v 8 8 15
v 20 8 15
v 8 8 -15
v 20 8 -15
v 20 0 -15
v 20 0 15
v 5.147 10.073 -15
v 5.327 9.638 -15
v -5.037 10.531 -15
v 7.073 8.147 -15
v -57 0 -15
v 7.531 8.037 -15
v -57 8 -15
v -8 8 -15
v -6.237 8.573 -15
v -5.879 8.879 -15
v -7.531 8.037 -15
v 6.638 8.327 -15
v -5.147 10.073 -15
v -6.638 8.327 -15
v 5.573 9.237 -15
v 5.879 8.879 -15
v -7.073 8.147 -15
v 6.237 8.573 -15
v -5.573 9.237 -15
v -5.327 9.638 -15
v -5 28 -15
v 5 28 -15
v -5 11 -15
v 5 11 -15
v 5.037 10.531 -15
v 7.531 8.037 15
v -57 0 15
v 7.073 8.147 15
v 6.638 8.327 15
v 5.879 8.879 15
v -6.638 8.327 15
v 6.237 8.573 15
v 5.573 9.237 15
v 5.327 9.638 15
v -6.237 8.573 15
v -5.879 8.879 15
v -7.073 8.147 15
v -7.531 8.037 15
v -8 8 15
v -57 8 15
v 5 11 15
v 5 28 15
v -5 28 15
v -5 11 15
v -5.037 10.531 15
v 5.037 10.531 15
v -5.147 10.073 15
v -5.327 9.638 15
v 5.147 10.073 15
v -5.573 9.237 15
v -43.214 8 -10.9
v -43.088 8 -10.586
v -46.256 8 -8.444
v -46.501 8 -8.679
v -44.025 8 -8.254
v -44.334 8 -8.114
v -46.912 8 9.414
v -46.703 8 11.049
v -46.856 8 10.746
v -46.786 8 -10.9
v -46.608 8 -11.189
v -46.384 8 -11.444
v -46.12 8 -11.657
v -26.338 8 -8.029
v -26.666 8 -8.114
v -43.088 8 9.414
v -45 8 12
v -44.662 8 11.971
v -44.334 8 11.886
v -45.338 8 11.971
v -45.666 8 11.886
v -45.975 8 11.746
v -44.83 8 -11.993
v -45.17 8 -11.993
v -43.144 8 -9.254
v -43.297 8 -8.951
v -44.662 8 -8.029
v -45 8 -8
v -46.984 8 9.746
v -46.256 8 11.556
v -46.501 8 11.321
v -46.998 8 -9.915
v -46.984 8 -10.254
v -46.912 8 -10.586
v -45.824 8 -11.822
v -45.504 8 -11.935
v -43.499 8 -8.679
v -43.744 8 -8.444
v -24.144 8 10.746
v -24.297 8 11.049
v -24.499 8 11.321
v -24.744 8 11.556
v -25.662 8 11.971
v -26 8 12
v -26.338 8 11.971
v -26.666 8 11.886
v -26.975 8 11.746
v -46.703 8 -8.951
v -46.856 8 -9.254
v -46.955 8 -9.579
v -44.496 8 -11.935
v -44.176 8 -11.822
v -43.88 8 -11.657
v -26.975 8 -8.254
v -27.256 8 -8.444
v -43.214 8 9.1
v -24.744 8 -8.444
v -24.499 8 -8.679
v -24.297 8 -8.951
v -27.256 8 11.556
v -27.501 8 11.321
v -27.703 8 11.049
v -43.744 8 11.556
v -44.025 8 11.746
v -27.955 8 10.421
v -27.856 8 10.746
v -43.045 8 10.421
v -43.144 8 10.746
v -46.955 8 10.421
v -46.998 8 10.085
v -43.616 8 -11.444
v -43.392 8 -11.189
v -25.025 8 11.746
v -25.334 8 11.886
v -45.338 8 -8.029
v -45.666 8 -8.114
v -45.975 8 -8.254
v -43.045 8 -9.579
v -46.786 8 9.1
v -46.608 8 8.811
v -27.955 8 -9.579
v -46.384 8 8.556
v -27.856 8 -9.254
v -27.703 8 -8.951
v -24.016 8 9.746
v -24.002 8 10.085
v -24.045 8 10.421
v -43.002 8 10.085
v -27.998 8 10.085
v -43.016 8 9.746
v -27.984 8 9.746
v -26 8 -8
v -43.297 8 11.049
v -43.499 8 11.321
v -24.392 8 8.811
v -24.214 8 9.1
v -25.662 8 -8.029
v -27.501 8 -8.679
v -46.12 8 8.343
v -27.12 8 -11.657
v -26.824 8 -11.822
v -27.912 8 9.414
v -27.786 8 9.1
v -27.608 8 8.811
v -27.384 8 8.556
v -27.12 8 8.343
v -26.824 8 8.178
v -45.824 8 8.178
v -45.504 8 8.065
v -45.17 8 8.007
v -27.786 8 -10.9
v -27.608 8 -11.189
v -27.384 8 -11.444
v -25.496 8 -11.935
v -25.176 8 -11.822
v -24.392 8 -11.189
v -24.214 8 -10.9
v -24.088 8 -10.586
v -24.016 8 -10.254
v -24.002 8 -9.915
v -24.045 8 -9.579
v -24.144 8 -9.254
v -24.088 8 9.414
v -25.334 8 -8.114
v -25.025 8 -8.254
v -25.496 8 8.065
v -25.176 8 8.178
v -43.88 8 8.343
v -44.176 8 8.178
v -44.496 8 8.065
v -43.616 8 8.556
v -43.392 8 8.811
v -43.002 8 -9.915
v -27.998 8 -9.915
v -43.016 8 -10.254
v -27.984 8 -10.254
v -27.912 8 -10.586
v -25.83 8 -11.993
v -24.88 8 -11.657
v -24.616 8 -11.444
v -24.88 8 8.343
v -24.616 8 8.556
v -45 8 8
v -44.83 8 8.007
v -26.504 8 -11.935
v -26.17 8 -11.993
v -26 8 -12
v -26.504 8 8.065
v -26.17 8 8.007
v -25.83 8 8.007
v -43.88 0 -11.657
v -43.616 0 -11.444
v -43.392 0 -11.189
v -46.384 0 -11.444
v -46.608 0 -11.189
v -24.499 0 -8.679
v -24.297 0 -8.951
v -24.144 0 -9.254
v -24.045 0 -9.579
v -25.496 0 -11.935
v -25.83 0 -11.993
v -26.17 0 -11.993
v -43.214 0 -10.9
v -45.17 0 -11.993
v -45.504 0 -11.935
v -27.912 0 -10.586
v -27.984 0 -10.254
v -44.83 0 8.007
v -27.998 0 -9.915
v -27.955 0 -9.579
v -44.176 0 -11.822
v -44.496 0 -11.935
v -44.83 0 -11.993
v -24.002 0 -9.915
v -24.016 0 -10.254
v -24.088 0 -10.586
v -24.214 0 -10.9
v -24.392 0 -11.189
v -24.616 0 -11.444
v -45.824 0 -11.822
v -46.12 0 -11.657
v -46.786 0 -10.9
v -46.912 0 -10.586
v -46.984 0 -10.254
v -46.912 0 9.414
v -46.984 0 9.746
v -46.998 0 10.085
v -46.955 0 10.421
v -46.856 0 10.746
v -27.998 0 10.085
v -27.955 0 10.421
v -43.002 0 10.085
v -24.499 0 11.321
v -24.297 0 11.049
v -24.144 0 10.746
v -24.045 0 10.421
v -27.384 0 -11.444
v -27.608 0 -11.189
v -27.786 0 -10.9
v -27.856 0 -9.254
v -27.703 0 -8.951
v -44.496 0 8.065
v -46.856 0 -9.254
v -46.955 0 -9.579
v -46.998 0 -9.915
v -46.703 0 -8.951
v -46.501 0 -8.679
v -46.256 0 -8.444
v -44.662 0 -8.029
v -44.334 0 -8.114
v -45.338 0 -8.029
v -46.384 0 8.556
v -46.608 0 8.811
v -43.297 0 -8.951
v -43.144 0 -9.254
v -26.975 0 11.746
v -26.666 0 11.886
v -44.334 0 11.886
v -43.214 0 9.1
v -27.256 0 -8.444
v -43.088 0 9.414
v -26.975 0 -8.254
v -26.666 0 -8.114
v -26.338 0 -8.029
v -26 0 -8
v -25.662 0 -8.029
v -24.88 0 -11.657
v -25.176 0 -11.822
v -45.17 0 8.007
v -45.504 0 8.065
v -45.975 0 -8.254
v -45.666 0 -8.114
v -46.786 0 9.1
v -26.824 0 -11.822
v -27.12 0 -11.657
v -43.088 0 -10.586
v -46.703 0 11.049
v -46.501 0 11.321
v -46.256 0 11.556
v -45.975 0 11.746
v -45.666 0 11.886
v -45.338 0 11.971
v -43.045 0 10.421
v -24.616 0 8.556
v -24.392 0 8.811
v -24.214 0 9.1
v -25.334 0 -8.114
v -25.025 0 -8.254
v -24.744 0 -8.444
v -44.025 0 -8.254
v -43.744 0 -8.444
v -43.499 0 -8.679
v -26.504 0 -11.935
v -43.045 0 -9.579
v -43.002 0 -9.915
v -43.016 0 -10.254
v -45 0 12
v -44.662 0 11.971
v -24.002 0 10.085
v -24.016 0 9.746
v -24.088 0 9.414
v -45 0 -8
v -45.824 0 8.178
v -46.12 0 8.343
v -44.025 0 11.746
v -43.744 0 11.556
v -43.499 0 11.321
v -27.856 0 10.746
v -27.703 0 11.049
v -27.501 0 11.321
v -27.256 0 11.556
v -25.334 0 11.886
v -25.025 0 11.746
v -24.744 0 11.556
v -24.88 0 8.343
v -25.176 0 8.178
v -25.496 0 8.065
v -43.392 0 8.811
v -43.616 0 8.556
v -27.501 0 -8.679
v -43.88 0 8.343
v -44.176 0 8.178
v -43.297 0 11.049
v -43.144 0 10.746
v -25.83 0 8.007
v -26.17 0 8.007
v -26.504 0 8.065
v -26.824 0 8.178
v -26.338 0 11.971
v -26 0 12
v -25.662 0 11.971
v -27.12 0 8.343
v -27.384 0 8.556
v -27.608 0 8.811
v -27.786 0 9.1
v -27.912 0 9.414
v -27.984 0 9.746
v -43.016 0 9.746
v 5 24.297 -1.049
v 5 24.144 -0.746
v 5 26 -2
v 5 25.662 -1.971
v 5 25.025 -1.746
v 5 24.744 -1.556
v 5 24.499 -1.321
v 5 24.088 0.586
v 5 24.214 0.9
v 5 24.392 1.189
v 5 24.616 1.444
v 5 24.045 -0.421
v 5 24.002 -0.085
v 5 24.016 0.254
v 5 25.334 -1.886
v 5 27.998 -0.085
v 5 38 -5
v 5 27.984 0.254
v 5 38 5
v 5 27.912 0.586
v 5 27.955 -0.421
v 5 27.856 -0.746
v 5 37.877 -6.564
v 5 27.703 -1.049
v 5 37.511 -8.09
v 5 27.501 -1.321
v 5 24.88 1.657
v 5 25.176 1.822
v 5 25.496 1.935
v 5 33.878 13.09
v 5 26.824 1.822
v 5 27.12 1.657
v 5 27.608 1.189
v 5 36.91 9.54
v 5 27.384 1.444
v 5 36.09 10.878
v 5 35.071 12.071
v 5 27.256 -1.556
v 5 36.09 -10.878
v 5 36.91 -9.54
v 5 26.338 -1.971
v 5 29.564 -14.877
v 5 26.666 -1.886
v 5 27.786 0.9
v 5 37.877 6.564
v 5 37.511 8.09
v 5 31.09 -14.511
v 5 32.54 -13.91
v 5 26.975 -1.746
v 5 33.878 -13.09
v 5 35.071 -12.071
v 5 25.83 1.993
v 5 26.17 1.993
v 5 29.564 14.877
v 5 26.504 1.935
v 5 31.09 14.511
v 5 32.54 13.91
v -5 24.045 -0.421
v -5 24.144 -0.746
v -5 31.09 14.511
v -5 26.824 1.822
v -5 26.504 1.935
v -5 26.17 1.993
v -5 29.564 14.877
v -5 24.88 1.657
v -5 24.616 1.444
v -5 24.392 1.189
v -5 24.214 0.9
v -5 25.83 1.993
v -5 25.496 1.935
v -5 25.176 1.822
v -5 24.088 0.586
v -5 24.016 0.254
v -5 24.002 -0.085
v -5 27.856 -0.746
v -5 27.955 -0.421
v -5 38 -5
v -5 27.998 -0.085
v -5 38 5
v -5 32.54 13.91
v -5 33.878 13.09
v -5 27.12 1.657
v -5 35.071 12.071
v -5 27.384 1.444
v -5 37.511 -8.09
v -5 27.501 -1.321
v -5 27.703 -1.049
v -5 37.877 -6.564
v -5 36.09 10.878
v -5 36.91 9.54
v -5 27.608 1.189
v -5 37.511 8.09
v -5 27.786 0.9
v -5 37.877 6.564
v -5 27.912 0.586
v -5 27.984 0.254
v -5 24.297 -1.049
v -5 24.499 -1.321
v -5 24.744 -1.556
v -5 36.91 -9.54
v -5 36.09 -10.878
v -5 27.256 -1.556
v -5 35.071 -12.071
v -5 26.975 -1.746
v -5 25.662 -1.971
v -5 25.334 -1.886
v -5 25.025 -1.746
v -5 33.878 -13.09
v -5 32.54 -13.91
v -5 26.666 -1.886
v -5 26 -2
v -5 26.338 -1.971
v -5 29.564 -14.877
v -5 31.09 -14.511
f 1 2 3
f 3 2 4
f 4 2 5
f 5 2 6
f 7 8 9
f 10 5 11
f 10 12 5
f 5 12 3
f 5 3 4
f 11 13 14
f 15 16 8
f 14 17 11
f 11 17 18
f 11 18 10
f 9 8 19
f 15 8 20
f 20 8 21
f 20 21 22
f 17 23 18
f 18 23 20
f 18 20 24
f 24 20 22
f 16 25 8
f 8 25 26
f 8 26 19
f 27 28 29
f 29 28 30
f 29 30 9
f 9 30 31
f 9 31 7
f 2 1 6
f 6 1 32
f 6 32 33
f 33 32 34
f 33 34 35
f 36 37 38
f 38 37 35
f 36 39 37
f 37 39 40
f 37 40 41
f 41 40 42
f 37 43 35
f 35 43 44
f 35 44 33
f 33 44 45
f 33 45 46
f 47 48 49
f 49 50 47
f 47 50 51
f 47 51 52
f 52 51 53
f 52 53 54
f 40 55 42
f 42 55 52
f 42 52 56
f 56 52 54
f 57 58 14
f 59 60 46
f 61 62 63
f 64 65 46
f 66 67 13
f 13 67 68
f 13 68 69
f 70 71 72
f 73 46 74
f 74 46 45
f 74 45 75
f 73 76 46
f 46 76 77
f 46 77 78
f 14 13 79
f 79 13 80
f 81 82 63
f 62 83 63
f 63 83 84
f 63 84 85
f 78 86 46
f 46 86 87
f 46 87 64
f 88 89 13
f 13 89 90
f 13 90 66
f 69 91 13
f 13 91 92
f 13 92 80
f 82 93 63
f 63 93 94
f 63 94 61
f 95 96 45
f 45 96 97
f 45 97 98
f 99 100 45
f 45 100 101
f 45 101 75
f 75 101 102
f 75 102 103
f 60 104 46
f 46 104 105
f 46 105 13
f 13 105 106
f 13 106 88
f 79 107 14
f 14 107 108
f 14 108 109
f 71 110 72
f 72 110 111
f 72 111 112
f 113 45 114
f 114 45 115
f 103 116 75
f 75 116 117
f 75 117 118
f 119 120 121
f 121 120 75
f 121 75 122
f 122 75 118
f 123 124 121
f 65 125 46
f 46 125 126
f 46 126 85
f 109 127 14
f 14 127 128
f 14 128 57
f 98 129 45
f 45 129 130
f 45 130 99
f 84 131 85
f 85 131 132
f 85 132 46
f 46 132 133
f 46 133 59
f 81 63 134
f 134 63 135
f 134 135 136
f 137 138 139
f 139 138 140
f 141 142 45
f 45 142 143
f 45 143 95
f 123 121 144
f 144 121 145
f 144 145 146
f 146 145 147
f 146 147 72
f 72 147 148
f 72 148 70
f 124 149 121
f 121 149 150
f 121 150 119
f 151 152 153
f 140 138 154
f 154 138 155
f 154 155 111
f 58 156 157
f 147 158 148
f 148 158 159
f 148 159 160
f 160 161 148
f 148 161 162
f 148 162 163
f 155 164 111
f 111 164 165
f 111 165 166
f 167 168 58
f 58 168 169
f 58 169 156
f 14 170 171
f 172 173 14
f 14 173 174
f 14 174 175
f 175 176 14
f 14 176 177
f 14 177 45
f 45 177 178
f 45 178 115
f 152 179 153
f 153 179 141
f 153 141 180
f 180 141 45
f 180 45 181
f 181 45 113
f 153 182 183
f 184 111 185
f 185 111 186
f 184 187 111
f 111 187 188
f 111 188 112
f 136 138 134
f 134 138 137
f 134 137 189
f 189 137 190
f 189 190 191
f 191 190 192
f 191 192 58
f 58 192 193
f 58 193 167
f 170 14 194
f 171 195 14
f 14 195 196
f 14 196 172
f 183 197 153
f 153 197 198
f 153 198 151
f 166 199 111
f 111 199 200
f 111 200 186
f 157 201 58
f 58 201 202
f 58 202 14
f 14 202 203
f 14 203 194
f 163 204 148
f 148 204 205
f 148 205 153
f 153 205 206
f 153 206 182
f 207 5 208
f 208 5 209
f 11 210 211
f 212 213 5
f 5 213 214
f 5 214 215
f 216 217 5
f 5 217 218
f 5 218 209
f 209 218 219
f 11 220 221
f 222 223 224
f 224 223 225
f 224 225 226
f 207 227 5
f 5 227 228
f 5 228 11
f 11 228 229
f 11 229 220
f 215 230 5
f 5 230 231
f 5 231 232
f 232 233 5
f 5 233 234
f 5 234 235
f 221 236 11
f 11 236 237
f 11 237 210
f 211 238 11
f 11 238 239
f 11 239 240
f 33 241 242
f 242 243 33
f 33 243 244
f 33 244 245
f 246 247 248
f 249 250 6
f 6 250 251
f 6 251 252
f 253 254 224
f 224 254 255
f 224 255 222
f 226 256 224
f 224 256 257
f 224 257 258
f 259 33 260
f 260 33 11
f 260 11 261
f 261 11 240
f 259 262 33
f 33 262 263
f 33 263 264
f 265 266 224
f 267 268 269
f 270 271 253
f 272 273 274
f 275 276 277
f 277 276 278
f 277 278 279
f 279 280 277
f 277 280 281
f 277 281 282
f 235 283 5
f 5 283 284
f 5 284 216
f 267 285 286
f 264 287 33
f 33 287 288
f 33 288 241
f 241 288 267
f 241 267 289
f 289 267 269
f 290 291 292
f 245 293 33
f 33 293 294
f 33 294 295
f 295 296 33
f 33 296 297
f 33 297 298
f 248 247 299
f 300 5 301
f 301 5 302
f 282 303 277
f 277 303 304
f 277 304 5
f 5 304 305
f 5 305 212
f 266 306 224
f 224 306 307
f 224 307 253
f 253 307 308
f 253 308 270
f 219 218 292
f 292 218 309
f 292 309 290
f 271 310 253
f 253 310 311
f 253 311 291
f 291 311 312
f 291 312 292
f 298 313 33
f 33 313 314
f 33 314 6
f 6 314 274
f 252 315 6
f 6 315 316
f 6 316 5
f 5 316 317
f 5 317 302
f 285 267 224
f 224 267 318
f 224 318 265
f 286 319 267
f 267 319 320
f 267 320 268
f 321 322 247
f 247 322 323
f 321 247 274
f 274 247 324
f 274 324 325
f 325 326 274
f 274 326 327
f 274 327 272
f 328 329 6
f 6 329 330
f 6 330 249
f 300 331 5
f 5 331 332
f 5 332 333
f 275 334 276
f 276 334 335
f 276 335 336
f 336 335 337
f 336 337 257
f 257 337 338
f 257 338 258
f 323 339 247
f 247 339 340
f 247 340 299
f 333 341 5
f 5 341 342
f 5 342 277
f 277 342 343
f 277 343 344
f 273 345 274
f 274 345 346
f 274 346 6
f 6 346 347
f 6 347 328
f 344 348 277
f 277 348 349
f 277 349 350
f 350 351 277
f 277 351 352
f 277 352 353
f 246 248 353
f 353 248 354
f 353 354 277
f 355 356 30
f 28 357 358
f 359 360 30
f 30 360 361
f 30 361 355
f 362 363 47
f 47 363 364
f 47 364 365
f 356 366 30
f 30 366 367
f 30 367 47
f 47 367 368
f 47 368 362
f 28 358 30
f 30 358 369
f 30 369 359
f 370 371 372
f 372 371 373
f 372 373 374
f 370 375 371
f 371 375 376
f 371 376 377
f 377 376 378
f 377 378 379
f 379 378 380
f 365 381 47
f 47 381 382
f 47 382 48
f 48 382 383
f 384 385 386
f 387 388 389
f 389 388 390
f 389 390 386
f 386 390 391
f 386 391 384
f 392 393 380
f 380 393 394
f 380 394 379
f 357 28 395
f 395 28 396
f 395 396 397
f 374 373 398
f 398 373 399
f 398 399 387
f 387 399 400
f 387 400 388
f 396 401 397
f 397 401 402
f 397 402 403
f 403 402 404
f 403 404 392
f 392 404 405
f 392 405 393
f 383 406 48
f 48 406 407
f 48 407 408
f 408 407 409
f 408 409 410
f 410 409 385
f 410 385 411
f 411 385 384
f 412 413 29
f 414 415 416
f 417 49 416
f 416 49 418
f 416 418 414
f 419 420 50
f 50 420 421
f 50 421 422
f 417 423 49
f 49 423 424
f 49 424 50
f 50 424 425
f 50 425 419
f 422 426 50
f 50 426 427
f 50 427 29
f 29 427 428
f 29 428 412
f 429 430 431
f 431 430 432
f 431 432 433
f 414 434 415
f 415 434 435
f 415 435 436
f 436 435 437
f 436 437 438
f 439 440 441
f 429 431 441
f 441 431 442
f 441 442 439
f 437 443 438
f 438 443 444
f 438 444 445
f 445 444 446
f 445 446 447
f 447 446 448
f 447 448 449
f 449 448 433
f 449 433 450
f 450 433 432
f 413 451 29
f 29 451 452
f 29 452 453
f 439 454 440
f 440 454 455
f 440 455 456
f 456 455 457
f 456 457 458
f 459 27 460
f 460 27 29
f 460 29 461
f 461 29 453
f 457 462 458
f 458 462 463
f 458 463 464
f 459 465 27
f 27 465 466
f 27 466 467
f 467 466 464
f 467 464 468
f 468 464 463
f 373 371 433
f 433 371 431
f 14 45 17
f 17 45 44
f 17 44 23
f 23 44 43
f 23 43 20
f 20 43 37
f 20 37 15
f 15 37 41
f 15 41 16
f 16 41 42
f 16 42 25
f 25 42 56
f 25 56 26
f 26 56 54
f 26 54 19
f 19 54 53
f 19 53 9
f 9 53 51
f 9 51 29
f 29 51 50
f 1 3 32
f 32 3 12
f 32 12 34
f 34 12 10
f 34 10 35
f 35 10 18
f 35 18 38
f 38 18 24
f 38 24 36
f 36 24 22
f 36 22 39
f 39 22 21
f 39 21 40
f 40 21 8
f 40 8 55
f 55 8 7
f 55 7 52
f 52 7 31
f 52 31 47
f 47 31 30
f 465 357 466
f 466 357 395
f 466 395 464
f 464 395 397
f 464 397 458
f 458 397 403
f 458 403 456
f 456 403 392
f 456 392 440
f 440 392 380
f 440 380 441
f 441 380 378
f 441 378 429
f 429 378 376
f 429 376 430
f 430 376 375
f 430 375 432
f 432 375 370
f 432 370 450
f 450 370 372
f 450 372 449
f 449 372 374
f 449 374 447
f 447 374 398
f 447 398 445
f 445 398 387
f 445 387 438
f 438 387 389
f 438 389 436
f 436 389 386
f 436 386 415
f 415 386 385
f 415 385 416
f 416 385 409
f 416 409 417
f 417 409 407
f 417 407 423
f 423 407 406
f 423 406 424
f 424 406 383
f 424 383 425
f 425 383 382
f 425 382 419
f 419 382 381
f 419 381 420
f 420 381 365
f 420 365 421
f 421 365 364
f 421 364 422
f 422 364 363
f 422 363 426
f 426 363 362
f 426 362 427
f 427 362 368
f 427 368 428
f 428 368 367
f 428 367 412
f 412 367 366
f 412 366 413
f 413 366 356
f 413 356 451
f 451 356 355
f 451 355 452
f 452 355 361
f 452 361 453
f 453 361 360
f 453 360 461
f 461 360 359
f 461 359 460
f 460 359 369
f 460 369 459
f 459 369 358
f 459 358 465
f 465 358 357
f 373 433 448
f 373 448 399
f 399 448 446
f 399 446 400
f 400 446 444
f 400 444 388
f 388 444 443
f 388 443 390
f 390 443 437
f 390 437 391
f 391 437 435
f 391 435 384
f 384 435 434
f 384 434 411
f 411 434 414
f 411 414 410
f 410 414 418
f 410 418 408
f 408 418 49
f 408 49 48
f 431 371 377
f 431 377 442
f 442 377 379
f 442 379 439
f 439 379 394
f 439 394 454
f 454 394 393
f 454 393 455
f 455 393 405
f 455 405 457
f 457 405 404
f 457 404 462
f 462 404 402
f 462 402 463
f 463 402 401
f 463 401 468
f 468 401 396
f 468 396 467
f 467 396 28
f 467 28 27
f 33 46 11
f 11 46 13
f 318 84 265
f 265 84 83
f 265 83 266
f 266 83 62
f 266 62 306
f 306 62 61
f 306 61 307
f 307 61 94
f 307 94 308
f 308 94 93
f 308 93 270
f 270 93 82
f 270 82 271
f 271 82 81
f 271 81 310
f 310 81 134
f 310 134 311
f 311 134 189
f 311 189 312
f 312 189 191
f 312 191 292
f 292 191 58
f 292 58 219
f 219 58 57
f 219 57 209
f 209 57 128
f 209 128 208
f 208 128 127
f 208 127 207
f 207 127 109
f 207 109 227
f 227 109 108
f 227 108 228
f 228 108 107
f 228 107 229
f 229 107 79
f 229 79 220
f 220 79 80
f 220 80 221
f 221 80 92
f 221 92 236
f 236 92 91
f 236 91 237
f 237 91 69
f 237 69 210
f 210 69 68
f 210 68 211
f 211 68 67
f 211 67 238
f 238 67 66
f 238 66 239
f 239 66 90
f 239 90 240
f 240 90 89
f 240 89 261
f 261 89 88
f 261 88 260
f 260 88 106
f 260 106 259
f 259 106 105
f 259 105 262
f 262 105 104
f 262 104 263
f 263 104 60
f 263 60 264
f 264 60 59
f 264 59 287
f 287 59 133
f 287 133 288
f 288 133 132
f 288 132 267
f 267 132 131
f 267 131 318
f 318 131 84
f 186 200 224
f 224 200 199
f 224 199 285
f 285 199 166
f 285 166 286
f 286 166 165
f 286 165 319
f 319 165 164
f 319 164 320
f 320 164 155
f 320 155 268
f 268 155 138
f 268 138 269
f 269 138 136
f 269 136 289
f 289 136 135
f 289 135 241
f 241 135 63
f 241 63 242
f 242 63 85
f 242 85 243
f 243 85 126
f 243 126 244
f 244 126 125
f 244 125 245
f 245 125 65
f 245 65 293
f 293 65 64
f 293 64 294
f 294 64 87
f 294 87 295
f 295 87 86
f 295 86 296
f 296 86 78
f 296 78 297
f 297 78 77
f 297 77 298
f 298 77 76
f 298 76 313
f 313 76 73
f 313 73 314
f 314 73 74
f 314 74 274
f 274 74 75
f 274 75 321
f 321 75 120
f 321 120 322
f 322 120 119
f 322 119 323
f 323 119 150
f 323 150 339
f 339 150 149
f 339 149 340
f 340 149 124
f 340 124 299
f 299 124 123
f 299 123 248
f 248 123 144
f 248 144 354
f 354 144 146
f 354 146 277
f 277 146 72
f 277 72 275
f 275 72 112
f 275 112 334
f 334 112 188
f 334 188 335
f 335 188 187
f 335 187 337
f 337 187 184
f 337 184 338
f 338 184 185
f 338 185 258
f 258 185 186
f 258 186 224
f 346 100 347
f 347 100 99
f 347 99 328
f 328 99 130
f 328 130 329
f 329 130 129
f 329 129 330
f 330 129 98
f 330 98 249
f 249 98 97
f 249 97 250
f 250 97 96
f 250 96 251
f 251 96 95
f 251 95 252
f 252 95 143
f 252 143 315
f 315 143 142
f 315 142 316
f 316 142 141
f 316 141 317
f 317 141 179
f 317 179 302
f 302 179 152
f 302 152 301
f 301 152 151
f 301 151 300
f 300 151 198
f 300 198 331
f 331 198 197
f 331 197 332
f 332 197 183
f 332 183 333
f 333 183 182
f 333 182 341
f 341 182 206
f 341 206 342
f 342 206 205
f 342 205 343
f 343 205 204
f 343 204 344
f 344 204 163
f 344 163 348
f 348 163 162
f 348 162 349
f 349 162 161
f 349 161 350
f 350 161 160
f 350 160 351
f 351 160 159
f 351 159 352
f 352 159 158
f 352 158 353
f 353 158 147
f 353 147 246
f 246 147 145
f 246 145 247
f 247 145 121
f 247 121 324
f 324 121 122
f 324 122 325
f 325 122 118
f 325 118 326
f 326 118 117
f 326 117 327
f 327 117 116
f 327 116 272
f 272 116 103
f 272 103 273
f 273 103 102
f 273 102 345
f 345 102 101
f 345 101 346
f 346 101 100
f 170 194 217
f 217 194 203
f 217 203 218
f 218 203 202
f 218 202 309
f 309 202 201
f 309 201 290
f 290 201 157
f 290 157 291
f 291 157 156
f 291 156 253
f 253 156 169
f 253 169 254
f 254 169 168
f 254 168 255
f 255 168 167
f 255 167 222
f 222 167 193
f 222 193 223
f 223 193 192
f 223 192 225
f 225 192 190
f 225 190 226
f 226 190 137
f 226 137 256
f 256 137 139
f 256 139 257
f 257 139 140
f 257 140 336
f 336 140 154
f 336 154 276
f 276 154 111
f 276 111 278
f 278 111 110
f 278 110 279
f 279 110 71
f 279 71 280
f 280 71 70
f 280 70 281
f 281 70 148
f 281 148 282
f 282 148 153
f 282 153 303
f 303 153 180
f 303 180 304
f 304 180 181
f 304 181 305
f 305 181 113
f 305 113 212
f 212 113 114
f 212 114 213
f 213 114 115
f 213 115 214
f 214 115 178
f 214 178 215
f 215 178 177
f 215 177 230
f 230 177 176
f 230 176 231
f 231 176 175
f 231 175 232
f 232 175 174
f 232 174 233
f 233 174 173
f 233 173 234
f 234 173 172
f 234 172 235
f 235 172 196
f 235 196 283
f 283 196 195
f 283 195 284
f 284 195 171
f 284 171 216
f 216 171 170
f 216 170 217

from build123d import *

# Parameters (mm, degrees)
SKETCH1_W           = 40
SKETCH1_H           = 30
BOSS_EXTRUDE1_DEPTH = 8
SKETCH2_W           = 10
SKETCH2_H           = 30
BOSS_EXTRUDE2_DEPTH = 30
FILLET2_R           = 3
SKETCH4_R           = 2
CUT_EXTRUDE2_DEPTH  = 10
FILLET3_R           = 10
SKETCH5_W           = 30
SKETCH5_H           = 8
BOSS_EXTRUDE3_DEPTH = 37
SKETCH8_R           = 2
CUT_EXTRUDE3_DEPTH  = 37


with BuildPart() as part:
    # Sketch1 → Boss-Extrude1 (new body)
    with BuildSketch(Plane(origin=(0, 0, 0), x_dir=(1, 0, 0), z_dir=(0, 1, 0))):
        Rectangle(SKETCH1_W, SKETCH1_H)
    extrude(amount=BOSS_EXTRUDE1_DEPTH)

    # Sketch2 → Boss-Extrude2 (add)
    with BuildSketch(Plane(origin=(0, 8, 0), x_dir=(1, 0, 0), z_dir=(0, 1, 0))):
        Rectangle(SKETCH2_W, SKETCH2_H)
    extrude(amount=BOSS_EXTRUDE2_DEPTH)

    # Fillet2
    fillet2_edges = [part.edges().sort_by_distance(p)[0] for p in [
        (5, 8, 0),
        (-5, 8, 0),
    ]]
    fillet(fillet2_edges, radius=FILLET2_R)

    # Sketch4 → Cut-Extrude2 (cut)
    with BuildSketch(Plane(origin=(5, 0, 0), x_dir=(0, 0, -1), z_dir=(1, 0, 0))):
        with Locations((0, 26)):
            Circle(SKETCH4_R)
    extrude(amount=-CUT_EXTRUDE2_DEPTH, mode=Mode.SUBTRACT)

    # Fillet3
    fillet3_edges = [part.edges().sort_by_distance(p)[0] for p in [
        (0, 38, -15),
        (0, 38, 15),
    ]]
    fillet(fillet3_edges, radius=FILLET3_R)

    # Sketch5 → Boss-Extrude3 (add)
    with BuildSketch(Plane.ZY.offset(20)):
        with Locations((0, 4)):
            Rectangle(SKETCH5_W, SKETCH5_H)
    extrude(amount=BOSS_EXTRUDE3_DEPTH)

    # Sketch8 → Cut-Extrude3 (cut)
    with BuildSketch(Plane(origin=(0, 8, 0), x_dir=(1, 0, 0), z_dir=(0, 1, 0))):
        with Locations(Location((-45, 10, 0), (0, 0, 270))):
            Circle(SKETCH8_R)
        with Locations(Location((-45, -10, 0), (0, 0, 270))):
            Circle(SKETCH8_R)
        with Locations(Location((-26, -10, 0), (0, 0, 270))):
            Circle(SKETCH8_R)
        with Locations(Location((-26, 10, 0), (0, 0, 270))):
            Circle(SKETCH8_R)
    extrude(amount=-CUT_EXTRUDE3_DEPTH, mode=Mode.SUBTRACT)


solid = part.part
